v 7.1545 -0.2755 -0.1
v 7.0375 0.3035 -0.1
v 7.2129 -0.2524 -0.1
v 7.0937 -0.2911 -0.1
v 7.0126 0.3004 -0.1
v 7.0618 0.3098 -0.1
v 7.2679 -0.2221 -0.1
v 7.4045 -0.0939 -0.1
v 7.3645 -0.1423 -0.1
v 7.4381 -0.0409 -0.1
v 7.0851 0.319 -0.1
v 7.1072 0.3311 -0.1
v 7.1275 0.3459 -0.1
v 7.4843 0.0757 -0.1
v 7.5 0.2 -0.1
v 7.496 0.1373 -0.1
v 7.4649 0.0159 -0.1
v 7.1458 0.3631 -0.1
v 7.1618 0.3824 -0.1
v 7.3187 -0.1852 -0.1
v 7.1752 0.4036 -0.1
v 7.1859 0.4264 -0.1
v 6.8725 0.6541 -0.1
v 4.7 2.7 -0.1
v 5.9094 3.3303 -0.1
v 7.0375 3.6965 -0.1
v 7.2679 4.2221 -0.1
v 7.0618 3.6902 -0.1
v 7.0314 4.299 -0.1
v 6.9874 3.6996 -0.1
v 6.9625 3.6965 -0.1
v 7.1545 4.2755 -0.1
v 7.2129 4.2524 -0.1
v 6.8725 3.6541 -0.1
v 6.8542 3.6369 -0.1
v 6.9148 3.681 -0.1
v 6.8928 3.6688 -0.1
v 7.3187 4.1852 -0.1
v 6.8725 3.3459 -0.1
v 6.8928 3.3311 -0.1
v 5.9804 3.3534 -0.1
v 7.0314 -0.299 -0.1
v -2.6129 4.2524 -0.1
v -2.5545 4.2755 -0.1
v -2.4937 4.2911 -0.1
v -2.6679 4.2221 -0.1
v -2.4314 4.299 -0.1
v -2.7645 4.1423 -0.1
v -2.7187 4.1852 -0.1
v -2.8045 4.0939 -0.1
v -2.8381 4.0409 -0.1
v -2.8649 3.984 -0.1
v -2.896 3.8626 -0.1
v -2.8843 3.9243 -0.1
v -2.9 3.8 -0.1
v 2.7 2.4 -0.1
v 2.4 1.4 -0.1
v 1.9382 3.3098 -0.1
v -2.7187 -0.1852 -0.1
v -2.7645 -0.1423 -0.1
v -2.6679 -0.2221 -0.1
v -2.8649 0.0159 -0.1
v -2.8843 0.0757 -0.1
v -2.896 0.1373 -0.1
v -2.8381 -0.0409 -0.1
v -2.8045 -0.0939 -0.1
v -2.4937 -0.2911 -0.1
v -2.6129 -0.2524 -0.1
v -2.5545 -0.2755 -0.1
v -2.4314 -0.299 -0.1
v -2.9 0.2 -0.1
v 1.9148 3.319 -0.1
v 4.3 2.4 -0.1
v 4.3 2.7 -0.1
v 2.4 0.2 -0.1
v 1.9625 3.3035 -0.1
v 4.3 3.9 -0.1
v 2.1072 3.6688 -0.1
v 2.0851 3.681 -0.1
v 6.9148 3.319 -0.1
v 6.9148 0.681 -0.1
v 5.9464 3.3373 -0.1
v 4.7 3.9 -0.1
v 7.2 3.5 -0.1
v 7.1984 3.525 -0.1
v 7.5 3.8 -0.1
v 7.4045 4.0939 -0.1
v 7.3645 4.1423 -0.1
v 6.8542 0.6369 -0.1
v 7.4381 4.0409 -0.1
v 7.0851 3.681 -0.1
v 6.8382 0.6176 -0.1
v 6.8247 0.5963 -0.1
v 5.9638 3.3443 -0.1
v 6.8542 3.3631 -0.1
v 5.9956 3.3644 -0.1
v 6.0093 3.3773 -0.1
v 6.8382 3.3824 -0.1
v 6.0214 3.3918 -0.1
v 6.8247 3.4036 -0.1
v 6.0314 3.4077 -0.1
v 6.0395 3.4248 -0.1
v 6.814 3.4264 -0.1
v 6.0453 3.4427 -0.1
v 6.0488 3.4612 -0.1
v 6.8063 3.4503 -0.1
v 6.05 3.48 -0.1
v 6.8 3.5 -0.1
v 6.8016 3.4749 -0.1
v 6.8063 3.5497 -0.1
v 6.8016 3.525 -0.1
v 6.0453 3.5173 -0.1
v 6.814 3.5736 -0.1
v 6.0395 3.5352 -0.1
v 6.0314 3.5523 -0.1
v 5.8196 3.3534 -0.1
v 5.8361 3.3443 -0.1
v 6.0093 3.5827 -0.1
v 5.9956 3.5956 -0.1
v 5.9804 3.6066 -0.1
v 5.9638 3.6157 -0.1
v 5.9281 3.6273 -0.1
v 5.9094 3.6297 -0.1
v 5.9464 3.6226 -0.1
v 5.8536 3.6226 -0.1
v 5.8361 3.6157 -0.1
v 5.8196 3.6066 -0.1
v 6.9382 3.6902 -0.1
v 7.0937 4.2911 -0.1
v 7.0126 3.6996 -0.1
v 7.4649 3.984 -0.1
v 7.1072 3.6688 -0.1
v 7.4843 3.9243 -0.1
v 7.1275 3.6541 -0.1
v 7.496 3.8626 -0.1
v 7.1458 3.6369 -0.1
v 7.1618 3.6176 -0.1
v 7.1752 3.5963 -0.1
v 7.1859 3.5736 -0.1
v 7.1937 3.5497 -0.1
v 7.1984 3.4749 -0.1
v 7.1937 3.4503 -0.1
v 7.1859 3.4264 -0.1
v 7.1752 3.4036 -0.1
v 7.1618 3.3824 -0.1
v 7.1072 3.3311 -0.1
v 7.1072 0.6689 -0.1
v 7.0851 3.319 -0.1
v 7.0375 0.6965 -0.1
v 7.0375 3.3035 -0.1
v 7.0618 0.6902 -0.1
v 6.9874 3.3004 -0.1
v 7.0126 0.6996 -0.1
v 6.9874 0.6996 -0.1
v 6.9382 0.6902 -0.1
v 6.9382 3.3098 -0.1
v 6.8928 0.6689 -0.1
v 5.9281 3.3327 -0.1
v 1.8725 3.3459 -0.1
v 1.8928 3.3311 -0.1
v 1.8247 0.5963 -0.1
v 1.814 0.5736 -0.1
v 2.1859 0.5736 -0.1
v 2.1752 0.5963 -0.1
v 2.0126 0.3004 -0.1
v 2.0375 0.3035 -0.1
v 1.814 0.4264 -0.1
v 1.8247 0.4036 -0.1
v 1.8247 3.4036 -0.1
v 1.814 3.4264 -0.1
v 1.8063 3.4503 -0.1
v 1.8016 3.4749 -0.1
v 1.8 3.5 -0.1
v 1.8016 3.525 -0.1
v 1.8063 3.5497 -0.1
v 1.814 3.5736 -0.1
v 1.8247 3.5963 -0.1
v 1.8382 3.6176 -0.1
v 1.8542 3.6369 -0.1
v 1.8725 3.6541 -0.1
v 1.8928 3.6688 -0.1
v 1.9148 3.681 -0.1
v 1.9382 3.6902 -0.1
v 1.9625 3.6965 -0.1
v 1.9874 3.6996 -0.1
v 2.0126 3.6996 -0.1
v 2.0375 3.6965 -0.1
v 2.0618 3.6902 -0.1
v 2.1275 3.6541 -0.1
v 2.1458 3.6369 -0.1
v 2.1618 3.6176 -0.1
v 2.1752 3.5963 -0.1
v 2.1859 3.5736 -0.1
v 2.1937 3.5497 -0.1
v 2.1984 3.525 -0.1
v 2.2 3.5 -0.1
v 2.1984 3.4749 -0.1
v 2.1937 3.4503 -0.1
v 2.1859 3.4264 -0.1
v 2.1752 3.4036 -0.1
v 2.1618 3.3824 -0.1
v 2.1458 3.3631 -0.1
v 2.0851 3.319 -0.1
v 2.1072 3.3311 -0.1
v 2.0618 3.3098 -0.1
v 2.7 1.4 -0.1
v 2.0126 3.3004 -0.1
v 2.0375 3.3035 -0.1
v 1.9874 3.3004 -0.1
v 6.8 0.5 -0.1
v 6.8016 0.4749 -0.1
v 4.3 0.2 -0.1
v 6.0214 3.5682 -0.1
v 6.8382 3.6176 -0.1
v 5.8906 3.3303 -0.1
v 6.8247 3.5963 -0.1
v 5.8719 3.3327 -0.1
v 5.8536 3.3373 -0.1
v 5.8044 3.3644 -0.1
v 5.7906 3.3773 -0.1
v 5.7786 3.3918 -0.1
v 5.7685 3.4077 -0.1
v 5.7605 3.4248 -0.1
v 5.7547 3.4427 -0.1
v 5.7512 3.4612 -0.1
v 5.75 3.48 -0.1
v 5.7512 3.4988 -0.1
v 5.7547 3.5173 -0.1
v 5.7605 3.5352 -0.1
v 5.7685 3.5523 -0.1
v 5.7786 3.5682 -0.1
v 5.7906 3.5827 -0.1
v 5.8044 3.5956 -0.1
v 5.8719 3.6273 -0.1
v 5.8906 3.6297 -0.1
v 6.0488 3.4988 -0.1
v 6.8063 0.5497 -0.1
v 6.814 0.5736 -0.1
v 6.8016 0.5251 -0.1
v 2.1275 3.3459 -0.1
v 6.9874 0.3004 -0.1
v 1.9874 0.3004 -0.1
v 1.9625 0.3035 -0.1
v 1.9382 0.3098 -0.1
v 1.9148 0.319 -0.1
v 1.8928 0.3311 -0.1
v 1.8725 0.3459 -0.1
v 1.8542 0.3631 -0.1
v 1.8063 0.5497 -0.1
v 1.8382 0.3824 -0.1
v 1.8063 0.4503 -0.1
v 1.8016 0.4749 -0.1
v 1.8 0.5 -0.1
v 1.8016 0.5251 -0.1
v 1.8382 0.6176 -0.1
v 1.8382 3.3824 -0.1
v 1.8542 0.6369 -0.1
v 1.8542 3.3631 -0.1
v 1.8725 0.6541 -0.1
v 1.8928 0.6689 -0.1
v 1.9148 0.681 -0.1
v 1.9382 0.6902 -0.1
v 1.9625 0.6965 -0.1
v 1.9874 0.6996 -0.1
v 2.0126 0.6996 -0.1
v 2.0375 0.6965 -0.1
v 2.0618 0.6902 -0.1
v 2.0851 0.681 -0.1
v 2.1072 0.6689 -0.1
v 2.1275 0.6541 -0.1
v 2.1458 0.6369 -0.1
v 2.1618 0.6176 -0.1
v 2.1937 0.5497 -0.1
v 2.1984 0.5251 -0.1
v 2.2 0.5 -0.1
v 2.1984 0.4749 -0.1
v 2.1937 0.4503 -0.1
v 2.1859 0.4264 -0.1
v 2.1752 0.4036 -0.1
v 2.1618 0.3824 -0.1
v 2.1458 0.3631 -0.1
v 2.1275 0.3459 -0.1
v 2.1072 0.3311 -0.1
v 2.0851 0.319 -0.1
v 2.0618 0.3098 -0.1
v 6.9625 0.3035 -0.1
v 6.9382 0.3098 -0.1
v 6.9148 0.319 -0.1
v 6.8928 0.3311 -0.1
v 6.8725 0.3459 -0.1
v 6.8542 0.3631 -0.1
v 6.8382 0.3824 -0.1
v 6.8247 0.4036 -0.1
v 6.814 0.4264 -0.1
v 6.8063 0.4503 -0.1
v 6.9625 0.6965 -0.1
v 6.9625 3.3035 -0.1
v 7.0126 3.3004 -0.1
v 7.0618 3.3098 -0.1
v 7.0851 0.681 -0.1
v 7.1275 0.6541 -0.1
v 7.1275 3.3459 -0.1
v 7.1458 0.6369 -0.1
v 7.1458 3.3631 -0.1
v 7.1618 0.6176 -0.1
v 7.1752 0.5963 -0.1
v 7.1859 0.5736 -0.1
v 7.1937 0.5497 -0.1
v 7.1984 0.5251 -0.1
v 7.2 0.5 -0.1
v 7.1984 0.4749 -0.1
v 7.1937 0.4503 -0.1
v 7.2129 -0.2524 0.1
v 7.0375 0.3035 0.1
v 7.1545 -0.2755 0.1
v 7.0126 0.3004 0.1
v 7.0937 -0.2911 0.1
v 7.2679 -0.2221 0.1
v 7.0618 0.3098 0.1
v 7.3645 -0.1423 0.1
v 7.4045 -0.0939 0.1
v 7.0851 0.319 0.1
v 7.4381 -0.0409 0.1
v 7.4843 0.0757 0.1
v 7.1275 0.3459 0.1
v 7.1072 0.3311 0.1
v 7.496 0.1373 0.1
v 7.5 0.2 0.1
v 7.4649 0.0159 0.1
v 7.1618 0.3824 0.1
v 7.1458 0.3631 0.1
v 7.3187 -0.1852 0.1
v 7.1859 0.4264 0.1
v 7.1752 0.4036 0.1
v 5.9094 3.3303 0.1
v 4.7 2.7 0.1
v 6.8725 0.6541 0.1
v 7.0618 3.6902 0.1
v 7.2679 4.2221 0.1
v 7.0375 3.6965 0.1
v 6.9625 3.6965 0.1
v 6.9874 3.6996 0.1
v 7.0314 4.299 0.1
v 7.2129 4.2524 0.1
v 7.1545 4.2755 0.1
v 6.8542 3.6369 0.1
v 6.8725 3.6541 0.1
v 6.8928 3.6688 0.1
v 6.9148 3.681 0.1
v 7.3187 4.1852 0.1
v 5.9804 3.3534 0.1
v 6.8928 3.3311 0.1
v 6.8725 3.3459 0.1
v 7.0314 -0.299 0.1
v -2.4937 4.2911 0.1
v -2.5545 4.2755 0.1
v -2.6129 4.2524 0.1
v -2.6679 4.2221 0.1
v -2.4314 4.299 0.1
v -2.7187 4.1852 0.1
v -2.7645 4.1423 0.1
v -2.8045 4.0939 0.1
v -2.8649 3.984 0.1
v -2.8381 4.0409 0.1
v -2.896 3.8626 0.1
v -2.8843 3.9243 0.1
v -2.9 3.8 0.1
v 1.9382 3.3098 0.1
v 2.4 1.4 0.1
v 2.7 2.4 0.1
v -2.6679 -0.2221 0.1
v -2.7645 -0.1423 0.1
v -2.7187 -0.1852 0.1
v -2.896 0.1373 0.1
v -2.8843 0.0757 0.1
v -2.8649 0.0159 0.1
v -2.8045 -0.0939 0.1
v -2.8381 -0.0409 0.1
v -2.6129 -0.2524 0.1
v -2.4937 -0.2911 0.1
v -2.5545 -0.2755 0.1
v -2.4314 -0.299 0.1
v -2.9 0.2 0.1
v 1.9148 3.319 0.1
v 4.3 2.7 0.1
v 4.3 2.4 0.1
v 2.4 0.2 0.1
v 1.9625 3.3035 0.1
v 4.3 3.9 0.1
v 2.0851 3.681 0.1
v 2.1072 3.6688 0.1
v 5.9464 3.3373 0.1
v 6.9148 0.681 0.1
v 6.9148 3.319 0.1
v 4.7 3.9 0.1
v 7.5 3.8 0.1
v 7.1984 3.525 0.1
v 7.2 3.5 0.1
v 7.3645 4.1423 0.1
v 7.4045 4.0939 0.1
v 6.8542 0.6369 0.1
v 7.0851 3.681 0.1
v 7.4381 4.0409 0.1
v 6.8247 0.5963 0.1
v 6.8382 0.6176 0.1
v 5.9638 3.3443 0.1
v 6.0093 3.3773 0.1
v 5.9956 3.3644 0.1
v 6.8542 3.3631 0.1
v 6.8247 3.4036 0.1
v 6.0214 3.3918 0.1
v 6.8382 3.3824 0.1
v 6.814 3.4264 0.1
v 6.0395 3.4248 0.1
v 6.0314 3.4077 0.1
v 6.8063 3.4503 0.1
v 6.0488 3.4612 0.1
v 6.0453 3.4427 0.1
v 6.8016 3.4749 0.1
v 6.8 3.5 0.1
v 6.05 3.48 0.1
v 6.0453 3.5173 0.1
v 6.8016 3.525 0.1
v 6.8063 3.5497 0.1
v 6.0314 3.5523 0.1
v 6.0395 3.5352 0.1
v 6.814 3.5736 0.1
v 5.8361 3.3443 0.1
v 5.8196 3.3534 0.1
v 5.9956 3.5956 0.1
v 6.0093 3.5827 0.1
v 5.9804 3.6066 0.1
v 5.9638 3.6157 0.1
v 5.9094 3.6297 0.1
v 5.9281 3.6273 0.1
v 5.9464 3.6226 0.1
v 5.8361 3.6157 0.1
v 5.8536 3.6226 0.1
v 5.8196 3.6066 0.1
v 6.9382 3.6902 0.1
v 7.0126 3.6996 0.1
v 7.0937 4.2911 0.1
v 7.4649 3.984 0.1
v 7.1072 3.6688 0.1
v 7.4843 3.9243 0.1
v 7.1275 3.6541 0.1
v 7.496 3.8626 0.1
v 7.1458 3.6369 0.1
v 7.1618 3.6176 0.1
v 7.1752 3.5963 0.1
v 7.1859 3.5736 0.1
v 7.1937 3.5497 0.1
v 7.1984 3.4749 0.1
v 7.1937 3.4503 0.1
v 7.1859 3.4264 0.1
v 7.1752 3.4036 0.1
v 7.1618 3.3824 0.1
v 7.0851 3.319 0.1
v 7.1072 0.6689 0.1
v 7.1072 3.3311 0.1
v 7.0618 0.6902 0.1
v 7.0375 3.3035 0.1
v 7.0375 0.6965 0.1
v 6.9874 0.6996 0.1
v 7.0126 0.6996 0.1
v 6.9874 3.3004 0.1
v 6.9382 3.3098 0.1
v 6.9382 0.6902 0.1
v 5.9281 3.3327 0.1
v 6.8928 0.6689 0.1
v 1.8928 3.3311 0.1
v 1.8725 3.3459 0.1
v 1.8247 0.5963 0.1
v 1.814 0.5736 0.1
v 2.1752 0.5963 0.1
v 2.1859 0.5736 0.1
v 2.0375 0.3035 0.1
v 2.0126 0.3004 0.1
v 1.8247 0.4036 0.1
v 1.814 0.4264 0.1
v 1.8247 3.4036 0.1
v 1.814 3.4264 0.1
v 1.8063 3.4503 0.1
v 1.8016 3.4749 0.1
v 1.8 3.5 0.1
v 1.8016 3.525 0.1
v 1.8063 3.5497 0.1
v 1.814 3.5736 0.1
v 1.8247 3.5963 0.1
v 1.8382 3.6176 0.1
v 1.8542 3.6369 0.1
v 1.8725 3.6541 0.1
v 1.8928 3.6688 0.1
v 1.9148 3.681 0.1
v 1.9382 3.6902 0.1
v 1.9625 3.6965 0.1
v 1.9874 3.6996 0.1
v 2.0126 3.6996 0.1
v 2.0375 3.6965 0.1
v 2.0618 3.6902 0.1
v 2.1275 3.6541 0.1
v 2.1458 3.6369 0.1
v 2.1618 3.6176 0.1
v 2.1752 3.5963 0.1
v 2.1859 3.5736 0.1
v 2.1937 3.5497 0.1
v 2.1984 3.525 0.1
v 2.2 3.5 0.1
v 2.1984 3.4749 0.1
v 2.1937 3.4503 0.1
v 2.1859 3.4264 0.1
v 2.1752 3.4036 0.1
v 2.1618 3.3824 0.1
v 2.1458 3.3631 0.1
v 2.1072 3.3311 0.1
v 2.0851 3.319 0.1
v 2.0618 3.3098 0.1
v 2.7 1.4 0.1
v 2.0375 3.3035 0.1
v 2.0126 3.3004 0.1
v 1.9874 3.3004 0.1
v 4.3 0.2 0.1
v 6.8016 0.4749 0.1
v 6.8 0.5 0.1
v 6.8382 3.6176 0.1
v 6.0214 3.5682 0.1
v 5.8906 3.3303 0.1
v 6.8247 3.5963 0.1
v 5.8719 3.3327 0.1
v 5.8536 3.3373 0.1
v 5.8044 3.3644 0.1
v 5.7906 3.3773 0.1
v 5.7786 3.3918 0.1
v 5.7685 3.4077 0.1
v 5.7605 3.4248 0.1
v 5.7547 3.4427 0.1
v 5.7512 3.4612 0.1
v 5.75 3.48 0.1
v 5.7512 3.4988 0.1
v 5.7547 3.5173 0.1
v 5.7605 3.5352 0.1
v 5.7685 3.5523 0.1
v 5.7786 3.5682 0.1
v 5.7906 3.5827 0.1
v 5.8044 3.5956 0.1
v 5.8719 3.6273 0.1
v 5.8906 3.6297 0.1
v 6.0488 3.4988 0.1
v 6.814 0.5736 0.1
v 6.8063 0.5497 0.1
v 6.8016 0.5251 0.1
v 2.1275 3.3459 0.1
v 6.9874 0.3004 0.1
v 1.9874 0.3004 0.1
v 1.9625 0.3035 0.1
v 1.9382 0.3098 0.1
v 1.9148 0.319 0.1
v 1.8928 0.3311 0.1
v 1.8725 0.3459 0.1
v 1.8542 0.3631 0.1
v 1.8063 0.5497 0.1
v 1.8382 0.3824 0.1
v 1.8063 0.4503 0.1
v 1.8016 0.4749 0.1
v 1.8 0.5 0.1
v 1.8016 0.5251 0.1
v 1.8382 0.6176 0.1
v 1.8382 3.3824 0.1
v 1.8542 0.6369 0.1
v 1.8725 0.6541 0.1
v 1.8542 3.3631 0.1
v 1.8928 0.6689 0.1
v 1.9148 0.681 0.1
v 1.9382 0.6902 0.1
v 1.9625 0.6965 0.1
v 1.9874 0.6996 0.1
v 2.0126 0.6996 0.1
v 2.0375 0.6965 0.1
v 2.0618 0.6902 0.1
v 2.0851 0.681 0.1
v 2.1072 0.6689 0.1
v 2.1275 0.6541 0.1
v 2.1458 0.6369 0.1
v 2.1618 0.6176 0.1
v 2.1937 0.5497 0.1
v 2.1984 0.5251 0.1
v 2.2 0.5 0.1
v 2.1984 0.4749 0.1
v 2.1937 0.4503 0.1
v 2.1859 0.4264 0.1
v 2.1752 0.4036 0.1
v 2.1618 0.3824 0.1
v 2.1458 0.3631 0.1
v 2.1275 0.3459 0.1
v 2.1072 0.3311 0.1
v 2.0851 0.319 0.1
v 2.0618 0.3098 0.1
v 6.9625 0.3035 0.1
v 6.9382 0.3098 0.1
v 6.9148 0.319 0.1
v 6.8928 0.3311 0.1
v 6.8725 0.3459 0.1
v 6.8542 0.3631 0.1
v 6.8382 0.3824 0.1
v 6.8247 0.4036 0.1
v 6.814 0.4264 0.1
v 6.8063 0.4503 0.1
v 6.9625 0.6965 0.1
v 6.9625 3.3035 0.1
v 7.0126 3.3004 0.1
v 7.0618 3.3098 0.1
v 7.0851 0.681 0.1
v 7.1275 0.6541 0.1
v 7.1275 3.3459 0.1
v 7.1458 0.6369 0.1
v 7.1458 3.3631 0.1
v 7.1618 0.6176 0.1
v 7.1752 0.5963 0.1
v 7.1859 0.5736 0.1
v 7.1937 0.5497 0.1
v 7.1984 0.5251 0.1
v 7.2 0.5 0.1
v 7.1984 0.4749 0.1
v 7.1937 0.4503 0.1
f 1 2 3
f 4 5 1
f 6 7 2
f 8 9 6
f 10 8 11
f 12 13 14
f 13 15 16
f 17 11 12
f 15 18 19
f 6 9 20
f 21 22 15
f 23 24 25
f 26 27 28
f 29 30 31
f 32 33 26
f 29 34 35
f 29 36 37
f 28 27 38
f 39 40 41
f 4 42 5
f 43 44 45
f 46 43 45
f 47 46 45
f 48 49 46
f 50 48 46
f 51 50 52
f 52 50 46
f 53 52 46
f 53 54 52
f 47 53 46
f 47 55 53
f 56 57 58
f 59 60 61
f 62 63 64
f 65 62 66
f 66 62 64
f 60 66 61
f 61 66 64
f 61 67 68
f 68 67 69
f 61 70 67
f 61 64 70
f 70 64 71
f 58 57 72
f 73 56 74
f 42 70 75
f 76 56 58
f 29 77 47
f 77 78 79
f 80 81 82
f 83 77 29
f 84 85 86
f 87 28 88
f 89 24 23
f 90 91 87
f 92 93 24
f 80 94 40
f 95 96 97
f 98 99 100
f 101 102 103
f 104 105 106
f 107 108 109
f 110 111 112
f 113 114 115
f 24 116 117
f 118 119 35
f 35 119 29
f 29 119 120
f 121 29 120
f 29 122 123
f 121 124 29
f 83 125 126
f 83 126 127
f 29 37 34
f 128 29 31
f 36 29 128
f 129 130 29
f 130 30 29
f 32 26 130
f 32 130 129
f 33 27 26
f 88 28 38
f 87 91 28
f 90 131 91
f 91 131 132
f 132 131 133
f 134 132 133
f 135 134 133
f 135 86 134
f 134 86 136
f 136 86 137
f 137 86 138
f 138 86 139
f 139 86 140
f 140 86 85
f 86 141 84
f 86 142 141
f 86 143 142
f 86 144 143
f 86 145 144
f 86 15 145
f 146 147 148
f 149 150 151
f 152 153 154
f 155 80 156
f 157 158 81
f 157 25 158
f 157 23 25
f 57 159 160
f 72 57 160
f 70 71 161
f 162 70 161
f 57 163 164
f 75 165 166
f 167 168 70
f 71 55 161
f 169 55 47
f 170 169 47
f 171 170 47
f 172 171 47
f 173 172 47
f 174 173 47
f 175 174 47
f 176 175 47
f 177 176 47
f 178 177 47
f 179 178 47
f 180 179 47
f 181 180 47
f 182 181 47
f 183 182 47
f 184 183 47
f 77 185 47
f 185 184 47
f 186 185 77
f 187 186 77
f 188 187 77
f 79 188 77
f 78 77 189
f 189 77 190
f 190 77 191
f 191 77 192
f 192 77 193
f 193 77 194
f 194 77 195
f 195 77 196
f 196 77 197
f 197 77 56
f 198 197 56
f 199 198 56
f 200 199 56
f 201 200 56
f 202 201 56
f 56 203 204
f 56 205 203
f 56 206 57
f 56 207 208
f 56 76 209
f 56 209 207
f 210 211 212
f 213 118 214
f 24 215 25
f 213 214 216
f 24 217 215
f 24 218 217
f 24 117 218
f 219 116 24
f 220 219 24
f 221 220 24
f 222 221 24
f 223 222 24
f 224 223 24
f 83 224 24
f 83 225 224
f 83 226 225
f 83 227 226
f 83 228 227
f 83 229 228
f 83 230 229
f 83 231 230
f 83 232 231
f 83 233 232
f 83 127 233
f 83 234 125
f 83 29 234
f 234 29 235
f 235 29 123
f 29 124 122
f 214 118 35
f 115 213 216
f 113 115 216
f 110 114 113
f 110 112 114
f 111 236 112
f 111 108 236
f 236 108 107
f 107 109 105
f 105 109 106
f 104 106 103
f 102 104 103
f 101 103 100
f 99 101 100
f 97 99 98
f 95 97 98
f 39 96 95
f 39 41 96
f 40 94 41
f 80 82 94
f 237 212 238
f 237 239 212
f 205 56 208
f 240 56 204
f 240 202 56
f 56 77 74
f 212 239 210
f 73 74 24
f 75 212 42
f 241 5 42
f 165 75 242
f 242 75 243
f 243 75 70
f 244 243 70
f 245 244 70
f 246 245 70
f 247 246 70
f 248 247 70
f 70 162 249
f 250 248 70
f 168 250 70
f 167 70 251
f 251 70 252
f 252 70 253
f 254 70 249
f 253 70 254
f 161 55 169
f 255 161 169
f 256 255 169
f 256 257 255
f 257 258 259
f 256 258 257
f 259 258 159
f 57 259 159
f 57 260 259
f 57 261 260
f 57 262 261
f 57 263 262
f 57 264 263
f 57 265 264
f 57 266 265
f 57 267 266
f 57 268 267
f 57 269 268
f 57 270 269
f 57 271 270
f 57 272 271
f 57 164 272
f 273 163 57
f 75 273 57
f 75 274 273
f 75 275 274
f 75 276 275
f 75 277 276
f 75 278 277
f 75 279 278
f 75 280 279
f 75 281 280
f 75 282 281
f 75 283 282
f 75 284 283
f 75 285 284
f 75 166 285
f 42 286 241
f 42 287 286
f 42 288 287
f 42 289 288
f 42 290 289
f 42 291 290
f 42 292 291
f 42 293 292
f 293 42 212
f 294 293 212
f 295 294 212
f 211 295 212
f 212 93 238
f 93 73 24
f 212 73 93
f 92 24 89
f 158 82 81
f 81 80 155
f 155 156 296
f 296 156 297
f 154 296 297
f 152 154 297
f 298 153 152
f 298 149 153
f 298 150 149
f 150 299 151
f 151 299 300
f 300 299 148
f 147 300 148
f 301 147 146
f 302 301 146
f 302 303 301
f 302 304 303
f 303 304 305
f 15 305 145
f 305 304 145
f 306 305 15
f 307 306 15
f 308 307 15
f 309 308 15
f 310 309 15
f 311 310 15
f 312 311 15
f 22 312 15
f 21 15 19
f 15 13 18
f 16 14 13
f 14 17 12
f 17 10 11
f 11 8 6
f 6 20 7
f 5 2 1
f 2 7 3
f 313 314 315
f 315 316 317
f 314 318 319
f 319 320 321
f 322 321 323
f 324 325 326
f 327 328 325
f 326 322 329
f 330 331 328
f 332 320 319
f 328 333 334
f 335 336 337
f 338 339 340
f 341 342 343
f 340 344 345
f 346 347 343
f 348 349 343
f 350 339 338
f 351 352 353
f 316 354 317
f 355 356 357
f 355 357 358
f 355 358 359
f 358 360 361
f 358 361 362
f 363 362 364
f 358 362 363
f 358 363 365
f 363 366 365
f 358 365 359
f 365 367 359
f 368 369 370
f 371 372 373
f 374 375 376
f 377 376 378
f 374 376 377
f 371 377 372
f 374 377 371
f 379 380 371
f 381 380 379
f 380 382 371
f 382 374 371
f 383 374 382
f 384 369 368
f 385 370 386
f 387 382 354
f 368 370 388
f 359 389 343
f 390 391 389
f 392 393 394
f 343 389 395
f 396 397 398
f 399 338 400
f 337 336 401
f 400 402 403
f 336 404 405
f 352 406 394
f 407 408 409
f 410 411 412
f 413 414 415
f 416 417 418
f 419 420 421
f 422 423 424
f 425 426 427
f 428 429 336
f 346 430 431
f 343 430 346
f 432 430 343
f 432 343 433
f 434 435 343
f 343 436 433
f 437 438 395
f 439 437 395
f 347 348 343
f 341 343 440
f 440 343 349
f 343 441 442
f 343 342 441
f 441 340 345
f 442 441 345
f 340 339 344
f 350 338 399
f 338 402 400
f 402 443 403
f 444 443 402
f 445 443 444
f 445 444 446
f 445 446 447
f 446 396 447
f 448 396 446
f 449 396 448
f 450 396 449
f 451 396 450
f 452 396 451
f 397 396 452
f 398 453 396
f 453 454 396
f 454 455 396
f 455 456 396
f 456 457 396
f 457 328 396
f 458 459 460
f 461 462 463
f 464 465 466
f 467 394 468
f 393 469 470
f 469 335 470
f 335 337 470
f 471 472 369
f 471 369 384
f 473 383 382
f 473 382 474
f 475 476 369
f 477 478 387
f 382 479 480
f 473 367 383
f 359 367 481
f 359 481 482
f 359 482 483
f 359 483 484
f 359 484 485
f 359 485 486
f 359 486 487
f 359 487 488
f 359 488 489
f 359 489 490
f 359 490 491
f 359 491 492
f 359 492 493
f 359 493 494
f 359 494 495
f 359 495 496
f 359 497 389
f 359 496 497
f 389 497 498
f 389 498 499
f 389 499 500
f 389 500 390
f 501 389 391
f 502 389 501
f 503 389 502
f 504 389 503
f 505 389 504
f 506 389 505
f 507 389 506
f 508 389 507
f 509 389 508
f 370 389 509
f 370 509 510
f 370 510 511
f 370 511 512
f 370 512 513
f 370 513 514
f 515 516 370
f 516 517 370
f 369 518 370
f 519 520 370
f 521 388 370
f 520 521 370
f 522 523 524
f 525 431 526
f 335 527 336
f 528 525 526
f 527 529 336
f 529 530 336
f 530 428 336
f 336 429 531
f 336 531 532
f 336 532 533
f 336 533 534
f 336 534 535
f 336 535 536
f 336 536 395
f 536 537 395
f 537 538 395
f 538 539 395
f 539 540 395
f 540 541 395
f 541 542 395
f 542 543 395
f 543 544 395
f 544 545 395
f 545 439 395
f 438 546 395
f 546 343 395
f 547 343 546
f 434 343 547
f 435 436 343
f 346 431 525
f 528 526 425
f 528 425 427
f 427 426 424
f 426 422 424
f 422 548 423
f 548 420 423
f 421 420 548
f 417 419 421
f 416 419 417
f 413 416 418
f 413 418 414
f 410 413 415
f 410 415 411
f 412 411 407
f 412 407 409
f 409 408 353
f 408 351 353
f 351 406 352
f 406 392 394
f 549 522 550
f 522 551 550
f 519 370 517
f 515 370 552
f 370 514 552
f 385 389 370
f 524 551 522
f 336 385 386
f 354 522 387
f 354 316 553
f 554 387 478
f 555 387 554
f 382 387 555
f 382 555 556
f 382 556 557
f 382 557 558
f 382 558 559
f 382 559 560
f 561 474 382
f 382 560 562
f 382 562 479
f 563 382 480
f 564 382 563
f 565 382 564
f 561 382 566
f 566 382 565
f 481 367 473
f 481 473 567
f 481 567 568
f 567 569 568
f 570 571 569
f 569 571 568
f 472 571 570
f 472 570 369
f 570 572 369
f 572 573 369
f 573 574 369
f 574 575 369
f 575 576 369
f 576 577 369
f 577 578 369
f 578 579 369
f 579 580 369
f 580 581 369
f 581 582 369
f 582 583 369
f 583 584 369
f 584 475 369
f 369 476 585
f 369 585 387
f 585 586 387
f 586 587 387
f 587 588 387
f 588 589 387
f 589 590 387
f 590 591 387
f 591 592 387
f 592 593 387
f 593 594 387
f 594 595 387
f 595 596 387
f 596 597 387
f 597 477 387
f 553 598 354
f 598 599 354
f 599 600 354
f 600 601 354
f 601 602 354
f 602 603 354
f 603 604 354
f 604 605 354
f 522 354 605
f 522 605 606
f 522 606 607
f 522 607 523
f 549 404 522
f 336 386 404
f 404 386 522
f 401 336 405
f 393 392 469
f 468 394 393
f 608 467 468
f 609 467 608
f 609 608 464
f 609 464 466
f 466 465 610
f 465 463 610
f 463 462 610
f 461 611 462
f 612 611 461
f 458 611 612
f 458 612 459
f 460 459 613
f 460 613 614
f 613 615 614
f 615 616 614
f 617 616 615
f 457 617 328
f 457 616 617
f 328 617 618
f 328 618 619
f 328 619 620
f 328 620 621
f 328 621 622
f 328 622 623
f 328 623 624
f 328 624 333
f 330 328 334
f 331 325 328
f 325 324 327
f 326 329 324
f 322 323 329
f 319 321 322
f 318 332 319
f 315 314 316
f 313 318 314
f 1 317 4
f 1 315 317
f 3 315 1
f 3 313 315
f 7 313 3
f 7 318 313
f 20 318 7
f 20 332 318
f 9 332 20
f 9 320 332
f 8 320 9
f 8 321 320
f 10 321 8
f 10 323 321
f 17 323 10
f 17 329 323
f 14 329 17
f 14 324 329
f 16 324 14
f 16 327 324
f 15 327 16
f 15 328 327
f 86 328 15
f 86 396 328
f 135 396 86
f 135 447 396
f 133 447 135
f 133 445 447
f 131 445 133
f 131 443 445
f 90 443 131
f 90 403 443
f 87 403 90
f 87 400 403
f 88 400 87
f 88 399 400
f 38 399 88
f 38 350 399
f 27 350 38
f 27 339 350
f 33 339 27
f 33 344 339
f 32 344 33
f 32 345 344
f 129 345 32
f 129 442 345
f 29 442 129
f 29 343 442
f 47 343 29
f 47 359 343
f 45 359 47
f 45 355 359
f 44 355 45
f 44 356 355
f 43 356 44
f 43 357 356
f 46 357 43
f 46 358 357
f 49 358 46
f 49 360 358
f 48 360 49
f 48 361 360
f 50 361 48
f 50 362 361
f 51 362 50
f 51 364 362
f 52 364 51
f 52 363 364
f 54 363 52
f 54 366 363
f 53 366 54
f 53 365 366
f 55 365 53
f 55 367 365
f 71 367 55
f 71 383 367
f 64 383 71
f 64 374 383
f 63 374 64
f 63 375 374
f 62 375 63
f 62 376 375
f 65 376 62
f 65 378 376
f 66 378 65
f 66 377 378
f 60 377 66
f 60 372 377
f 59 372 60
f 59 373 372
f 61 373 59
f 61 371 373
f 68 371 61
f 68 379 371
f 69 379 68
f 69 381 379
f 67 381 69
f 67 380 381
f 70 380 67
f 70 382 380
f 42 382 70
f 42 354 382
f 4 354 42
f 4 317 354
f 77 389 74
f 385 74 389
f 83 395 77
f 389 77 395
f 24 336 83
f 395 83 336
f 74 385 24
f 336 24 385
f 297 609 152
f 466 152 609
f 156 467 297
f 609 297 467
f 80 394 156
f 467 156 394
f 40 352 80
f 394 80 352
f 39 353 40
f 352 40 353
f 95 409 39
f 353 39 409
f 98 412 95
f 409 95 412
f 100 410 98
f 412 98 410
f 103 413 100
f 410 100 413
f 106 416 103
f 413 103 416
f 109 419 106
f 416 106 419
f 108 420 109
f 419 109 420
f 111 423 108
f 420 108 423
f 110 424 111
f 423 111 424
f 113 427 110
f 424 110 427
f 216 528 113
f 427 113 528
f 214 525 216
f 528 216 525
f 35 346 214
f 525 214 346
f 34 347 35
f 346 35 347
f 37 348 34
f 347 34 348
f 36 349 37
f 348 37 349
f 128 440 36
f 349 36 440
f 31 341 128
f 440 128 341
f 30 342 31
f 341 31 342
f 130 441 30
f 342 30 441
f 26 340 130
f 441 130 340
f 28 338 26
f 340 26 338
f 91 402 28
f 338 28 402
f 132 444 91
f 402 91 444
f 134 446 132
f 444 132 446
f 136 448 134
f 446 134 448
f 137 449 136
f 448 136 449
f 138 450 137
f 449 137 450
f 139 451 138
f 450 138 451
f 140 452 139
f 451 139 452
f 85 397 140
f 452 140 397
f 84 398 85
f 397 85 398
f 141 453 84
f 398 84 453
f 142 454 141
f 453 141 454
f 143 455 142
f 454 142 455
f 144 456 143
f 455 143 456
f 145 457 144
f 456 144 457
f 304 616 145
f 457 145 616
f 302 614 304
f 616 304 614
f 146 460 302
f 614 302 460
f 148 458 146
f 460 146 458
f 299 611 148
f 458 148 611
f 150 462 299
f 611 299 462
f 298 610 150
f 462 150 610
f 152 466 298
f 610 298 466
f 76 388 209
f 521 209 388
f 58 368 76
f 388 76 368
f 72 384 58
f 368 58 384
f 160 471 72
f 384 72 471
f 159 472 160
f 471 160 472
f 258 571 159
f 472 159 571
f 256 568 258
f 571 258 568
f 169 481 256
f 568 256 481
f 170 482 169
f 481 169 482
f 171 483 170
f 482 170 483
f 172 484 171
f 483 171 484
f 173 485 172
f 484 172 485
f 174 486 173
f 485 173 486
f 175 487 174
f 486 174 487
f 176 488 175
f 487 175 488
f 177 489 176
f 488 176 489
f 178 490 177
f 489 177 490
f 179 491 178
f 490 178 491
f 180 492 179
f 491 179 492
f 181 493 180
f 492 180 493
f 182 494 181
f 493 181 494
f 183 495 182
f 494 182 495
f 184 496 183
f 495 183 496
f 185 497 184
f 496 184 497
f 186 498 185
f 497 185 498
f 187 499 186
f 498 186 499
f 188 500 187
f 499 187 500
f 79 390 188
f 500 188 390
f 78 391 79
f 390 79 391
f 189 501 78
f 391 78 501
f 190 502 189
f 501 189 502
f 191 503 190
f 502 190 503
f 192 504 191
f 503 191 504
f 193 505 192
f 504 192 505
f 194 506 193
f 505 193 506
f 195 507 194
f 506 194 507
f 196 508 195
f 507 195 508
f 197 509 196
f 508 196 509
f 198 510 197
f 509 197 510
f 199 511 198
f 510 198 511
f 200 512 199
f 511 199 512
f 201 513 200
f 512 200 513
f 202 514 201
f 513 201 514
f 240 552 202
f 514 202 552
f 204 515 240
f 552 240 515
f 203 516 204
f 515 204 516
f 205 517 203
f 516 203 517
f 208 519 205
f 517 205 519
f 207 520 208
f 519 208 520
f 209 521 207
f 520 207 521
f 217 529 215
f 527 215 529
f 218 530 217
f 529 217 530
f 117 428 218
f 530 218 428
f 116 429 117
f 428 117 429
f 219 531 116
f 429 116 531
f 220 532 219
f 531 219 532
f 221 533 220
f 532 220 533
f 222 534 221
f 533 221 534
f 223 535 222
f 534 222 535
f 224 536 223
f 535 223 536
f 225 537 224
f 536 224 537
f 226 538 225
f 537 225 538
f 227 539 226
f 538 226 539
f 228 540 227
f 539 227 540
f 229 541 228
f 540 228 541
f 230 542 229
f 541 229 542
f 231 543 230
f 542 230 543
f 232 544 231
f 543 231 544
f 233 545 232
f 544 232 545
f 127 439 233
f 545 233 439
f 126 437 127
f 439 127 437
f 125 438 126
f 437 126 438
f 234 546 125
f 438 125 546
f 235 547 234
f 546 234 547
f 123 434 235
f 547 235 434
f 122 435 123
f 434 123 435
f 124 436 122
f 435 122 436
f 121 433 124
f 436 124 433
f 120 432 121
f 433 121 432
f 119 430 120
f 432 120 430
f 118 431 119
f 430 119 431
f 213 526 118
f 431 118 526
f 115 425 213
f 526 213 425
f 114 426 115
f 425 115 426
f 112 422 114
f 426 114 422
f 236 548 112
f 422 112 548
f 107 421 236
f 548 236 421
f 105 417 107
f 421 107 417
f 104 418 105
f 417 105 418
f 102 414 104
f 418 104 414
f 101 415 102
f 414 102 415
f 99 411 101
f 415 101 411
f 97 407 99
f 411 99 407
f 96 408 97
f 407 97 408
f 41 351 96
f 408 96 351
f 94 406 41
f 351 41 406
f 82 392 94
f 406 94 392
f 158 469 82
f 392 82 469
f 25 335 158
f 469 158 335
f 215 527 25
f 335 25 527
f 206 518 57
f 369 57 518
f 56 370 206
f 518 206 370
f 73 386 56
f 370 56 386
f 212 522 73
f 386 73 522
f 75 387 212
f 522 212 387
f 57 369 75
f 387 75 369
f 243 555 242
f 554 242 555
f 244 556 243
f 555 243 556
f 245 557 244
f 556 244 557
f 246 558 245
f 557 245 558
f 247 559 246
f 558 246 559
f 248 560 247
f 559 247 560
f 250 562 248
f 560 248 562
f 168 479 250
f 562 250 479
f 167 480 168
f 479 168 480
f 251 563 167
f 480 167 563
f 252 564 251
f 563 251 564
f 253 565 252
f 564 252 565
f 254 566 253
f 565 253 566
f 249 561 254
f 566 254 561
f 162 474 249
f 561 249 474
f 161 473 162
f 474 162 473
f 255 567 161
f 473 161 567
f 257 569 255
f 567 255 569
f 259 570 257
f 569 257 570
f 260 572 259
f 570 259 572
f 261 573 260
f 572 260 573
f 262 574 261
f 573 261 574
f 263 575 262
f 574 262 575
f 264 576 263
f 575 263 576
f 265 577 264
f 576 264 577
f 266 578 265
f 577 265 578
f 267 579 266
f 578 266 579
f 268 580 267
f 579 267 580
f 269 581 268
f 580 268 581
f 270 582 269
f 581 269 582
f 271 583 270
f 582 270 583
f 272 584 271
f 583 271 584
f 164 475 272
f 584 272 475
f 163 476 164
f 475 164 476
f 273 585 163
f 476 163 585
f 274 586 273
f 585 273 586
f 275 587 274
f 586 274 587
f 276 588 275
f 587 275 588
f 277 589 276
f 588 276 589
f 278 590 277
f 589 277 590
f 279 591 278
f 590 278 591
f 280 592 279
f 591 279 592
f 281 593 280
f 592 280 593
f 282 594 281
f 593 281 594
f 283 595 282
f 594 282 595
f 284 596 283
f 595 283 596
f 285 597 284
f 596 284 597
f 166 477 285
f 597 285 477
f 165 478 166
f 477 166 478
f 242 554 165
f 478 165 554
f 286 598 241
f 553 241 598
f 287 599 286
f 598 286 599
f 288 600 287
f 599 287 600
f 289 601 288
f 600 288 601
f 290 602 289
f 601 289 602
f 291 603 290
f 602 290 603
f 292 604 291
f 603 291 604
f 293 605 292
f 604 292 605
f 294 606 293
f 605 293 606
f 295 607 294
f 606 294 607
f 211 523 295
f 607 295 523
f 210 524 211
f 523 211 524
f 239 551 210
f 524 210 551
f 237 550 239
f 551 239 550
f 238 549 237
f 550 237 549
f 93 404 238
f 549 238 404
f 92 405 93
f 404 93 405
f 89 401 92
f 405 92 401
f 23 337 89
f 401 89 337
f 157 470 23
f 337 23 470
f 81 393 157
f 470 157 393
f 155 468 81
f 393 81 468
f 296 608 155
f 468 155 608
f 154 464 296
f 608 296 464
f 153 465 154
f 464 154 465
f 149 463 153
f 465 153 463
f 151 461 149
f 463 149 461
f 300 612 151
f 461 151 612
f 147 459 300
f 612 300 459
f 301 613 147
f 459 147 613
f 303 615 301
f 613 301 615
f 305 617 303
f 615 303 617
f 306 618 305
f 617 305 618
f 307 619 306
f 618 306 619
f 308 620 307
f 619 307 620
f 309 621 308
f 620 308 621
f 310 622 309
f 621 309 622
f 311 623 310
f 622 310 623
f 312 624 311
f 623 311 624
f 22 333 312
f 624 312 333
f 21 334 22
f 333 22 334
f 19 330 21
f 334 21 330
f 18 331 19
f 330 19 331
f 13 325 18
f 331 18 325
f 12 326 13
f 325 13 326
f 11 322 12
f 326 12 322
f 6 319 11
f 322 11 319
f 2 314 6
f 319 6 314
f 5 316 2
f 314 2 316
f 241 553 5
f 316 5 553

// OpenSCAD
module roundedSquare( width, length, radiusCorner ) {
	translate( [ radiusCorner, radiusCorner, 0 ] )
		minkowski() {
			square( [width - 2 * radiusCorner, length - 2 * radiusCorner], false);
			circle(radiusCorner, $fn=50);
		}
}

//Make it 3D
linear_extrude(height = 0.2, center = true, convexity = 10, twist = 0)

difference()
{
    translate([-2.9,-0.3])
        roundedSquare(10.4, 4.6, 0.5);
    
    // Mounting holes
    translate([2,0.5])
        circle(0.2, true, $fn=50);
    translate([7,0.5])
        circle(0.2, true, $fn=50);
    translate([7,3.5])
        circle(0.2, true, $fn=50);
    translate([2,3.5])
        circle(0.2, true, $fn=50);
    
    // Sensors
    translate([3.5,1.3])
        square([1.6, 2.2], true);
    translate([2.55,0.8])
        square([0.3, 1.2], true);
    
    // Diplay
    translate([4.5,3.3])
        square([0.4, 1.2], true);
        
    // Button
    translate([5.9,3.48])
        circle(0.15, true, $fn=50);
}
